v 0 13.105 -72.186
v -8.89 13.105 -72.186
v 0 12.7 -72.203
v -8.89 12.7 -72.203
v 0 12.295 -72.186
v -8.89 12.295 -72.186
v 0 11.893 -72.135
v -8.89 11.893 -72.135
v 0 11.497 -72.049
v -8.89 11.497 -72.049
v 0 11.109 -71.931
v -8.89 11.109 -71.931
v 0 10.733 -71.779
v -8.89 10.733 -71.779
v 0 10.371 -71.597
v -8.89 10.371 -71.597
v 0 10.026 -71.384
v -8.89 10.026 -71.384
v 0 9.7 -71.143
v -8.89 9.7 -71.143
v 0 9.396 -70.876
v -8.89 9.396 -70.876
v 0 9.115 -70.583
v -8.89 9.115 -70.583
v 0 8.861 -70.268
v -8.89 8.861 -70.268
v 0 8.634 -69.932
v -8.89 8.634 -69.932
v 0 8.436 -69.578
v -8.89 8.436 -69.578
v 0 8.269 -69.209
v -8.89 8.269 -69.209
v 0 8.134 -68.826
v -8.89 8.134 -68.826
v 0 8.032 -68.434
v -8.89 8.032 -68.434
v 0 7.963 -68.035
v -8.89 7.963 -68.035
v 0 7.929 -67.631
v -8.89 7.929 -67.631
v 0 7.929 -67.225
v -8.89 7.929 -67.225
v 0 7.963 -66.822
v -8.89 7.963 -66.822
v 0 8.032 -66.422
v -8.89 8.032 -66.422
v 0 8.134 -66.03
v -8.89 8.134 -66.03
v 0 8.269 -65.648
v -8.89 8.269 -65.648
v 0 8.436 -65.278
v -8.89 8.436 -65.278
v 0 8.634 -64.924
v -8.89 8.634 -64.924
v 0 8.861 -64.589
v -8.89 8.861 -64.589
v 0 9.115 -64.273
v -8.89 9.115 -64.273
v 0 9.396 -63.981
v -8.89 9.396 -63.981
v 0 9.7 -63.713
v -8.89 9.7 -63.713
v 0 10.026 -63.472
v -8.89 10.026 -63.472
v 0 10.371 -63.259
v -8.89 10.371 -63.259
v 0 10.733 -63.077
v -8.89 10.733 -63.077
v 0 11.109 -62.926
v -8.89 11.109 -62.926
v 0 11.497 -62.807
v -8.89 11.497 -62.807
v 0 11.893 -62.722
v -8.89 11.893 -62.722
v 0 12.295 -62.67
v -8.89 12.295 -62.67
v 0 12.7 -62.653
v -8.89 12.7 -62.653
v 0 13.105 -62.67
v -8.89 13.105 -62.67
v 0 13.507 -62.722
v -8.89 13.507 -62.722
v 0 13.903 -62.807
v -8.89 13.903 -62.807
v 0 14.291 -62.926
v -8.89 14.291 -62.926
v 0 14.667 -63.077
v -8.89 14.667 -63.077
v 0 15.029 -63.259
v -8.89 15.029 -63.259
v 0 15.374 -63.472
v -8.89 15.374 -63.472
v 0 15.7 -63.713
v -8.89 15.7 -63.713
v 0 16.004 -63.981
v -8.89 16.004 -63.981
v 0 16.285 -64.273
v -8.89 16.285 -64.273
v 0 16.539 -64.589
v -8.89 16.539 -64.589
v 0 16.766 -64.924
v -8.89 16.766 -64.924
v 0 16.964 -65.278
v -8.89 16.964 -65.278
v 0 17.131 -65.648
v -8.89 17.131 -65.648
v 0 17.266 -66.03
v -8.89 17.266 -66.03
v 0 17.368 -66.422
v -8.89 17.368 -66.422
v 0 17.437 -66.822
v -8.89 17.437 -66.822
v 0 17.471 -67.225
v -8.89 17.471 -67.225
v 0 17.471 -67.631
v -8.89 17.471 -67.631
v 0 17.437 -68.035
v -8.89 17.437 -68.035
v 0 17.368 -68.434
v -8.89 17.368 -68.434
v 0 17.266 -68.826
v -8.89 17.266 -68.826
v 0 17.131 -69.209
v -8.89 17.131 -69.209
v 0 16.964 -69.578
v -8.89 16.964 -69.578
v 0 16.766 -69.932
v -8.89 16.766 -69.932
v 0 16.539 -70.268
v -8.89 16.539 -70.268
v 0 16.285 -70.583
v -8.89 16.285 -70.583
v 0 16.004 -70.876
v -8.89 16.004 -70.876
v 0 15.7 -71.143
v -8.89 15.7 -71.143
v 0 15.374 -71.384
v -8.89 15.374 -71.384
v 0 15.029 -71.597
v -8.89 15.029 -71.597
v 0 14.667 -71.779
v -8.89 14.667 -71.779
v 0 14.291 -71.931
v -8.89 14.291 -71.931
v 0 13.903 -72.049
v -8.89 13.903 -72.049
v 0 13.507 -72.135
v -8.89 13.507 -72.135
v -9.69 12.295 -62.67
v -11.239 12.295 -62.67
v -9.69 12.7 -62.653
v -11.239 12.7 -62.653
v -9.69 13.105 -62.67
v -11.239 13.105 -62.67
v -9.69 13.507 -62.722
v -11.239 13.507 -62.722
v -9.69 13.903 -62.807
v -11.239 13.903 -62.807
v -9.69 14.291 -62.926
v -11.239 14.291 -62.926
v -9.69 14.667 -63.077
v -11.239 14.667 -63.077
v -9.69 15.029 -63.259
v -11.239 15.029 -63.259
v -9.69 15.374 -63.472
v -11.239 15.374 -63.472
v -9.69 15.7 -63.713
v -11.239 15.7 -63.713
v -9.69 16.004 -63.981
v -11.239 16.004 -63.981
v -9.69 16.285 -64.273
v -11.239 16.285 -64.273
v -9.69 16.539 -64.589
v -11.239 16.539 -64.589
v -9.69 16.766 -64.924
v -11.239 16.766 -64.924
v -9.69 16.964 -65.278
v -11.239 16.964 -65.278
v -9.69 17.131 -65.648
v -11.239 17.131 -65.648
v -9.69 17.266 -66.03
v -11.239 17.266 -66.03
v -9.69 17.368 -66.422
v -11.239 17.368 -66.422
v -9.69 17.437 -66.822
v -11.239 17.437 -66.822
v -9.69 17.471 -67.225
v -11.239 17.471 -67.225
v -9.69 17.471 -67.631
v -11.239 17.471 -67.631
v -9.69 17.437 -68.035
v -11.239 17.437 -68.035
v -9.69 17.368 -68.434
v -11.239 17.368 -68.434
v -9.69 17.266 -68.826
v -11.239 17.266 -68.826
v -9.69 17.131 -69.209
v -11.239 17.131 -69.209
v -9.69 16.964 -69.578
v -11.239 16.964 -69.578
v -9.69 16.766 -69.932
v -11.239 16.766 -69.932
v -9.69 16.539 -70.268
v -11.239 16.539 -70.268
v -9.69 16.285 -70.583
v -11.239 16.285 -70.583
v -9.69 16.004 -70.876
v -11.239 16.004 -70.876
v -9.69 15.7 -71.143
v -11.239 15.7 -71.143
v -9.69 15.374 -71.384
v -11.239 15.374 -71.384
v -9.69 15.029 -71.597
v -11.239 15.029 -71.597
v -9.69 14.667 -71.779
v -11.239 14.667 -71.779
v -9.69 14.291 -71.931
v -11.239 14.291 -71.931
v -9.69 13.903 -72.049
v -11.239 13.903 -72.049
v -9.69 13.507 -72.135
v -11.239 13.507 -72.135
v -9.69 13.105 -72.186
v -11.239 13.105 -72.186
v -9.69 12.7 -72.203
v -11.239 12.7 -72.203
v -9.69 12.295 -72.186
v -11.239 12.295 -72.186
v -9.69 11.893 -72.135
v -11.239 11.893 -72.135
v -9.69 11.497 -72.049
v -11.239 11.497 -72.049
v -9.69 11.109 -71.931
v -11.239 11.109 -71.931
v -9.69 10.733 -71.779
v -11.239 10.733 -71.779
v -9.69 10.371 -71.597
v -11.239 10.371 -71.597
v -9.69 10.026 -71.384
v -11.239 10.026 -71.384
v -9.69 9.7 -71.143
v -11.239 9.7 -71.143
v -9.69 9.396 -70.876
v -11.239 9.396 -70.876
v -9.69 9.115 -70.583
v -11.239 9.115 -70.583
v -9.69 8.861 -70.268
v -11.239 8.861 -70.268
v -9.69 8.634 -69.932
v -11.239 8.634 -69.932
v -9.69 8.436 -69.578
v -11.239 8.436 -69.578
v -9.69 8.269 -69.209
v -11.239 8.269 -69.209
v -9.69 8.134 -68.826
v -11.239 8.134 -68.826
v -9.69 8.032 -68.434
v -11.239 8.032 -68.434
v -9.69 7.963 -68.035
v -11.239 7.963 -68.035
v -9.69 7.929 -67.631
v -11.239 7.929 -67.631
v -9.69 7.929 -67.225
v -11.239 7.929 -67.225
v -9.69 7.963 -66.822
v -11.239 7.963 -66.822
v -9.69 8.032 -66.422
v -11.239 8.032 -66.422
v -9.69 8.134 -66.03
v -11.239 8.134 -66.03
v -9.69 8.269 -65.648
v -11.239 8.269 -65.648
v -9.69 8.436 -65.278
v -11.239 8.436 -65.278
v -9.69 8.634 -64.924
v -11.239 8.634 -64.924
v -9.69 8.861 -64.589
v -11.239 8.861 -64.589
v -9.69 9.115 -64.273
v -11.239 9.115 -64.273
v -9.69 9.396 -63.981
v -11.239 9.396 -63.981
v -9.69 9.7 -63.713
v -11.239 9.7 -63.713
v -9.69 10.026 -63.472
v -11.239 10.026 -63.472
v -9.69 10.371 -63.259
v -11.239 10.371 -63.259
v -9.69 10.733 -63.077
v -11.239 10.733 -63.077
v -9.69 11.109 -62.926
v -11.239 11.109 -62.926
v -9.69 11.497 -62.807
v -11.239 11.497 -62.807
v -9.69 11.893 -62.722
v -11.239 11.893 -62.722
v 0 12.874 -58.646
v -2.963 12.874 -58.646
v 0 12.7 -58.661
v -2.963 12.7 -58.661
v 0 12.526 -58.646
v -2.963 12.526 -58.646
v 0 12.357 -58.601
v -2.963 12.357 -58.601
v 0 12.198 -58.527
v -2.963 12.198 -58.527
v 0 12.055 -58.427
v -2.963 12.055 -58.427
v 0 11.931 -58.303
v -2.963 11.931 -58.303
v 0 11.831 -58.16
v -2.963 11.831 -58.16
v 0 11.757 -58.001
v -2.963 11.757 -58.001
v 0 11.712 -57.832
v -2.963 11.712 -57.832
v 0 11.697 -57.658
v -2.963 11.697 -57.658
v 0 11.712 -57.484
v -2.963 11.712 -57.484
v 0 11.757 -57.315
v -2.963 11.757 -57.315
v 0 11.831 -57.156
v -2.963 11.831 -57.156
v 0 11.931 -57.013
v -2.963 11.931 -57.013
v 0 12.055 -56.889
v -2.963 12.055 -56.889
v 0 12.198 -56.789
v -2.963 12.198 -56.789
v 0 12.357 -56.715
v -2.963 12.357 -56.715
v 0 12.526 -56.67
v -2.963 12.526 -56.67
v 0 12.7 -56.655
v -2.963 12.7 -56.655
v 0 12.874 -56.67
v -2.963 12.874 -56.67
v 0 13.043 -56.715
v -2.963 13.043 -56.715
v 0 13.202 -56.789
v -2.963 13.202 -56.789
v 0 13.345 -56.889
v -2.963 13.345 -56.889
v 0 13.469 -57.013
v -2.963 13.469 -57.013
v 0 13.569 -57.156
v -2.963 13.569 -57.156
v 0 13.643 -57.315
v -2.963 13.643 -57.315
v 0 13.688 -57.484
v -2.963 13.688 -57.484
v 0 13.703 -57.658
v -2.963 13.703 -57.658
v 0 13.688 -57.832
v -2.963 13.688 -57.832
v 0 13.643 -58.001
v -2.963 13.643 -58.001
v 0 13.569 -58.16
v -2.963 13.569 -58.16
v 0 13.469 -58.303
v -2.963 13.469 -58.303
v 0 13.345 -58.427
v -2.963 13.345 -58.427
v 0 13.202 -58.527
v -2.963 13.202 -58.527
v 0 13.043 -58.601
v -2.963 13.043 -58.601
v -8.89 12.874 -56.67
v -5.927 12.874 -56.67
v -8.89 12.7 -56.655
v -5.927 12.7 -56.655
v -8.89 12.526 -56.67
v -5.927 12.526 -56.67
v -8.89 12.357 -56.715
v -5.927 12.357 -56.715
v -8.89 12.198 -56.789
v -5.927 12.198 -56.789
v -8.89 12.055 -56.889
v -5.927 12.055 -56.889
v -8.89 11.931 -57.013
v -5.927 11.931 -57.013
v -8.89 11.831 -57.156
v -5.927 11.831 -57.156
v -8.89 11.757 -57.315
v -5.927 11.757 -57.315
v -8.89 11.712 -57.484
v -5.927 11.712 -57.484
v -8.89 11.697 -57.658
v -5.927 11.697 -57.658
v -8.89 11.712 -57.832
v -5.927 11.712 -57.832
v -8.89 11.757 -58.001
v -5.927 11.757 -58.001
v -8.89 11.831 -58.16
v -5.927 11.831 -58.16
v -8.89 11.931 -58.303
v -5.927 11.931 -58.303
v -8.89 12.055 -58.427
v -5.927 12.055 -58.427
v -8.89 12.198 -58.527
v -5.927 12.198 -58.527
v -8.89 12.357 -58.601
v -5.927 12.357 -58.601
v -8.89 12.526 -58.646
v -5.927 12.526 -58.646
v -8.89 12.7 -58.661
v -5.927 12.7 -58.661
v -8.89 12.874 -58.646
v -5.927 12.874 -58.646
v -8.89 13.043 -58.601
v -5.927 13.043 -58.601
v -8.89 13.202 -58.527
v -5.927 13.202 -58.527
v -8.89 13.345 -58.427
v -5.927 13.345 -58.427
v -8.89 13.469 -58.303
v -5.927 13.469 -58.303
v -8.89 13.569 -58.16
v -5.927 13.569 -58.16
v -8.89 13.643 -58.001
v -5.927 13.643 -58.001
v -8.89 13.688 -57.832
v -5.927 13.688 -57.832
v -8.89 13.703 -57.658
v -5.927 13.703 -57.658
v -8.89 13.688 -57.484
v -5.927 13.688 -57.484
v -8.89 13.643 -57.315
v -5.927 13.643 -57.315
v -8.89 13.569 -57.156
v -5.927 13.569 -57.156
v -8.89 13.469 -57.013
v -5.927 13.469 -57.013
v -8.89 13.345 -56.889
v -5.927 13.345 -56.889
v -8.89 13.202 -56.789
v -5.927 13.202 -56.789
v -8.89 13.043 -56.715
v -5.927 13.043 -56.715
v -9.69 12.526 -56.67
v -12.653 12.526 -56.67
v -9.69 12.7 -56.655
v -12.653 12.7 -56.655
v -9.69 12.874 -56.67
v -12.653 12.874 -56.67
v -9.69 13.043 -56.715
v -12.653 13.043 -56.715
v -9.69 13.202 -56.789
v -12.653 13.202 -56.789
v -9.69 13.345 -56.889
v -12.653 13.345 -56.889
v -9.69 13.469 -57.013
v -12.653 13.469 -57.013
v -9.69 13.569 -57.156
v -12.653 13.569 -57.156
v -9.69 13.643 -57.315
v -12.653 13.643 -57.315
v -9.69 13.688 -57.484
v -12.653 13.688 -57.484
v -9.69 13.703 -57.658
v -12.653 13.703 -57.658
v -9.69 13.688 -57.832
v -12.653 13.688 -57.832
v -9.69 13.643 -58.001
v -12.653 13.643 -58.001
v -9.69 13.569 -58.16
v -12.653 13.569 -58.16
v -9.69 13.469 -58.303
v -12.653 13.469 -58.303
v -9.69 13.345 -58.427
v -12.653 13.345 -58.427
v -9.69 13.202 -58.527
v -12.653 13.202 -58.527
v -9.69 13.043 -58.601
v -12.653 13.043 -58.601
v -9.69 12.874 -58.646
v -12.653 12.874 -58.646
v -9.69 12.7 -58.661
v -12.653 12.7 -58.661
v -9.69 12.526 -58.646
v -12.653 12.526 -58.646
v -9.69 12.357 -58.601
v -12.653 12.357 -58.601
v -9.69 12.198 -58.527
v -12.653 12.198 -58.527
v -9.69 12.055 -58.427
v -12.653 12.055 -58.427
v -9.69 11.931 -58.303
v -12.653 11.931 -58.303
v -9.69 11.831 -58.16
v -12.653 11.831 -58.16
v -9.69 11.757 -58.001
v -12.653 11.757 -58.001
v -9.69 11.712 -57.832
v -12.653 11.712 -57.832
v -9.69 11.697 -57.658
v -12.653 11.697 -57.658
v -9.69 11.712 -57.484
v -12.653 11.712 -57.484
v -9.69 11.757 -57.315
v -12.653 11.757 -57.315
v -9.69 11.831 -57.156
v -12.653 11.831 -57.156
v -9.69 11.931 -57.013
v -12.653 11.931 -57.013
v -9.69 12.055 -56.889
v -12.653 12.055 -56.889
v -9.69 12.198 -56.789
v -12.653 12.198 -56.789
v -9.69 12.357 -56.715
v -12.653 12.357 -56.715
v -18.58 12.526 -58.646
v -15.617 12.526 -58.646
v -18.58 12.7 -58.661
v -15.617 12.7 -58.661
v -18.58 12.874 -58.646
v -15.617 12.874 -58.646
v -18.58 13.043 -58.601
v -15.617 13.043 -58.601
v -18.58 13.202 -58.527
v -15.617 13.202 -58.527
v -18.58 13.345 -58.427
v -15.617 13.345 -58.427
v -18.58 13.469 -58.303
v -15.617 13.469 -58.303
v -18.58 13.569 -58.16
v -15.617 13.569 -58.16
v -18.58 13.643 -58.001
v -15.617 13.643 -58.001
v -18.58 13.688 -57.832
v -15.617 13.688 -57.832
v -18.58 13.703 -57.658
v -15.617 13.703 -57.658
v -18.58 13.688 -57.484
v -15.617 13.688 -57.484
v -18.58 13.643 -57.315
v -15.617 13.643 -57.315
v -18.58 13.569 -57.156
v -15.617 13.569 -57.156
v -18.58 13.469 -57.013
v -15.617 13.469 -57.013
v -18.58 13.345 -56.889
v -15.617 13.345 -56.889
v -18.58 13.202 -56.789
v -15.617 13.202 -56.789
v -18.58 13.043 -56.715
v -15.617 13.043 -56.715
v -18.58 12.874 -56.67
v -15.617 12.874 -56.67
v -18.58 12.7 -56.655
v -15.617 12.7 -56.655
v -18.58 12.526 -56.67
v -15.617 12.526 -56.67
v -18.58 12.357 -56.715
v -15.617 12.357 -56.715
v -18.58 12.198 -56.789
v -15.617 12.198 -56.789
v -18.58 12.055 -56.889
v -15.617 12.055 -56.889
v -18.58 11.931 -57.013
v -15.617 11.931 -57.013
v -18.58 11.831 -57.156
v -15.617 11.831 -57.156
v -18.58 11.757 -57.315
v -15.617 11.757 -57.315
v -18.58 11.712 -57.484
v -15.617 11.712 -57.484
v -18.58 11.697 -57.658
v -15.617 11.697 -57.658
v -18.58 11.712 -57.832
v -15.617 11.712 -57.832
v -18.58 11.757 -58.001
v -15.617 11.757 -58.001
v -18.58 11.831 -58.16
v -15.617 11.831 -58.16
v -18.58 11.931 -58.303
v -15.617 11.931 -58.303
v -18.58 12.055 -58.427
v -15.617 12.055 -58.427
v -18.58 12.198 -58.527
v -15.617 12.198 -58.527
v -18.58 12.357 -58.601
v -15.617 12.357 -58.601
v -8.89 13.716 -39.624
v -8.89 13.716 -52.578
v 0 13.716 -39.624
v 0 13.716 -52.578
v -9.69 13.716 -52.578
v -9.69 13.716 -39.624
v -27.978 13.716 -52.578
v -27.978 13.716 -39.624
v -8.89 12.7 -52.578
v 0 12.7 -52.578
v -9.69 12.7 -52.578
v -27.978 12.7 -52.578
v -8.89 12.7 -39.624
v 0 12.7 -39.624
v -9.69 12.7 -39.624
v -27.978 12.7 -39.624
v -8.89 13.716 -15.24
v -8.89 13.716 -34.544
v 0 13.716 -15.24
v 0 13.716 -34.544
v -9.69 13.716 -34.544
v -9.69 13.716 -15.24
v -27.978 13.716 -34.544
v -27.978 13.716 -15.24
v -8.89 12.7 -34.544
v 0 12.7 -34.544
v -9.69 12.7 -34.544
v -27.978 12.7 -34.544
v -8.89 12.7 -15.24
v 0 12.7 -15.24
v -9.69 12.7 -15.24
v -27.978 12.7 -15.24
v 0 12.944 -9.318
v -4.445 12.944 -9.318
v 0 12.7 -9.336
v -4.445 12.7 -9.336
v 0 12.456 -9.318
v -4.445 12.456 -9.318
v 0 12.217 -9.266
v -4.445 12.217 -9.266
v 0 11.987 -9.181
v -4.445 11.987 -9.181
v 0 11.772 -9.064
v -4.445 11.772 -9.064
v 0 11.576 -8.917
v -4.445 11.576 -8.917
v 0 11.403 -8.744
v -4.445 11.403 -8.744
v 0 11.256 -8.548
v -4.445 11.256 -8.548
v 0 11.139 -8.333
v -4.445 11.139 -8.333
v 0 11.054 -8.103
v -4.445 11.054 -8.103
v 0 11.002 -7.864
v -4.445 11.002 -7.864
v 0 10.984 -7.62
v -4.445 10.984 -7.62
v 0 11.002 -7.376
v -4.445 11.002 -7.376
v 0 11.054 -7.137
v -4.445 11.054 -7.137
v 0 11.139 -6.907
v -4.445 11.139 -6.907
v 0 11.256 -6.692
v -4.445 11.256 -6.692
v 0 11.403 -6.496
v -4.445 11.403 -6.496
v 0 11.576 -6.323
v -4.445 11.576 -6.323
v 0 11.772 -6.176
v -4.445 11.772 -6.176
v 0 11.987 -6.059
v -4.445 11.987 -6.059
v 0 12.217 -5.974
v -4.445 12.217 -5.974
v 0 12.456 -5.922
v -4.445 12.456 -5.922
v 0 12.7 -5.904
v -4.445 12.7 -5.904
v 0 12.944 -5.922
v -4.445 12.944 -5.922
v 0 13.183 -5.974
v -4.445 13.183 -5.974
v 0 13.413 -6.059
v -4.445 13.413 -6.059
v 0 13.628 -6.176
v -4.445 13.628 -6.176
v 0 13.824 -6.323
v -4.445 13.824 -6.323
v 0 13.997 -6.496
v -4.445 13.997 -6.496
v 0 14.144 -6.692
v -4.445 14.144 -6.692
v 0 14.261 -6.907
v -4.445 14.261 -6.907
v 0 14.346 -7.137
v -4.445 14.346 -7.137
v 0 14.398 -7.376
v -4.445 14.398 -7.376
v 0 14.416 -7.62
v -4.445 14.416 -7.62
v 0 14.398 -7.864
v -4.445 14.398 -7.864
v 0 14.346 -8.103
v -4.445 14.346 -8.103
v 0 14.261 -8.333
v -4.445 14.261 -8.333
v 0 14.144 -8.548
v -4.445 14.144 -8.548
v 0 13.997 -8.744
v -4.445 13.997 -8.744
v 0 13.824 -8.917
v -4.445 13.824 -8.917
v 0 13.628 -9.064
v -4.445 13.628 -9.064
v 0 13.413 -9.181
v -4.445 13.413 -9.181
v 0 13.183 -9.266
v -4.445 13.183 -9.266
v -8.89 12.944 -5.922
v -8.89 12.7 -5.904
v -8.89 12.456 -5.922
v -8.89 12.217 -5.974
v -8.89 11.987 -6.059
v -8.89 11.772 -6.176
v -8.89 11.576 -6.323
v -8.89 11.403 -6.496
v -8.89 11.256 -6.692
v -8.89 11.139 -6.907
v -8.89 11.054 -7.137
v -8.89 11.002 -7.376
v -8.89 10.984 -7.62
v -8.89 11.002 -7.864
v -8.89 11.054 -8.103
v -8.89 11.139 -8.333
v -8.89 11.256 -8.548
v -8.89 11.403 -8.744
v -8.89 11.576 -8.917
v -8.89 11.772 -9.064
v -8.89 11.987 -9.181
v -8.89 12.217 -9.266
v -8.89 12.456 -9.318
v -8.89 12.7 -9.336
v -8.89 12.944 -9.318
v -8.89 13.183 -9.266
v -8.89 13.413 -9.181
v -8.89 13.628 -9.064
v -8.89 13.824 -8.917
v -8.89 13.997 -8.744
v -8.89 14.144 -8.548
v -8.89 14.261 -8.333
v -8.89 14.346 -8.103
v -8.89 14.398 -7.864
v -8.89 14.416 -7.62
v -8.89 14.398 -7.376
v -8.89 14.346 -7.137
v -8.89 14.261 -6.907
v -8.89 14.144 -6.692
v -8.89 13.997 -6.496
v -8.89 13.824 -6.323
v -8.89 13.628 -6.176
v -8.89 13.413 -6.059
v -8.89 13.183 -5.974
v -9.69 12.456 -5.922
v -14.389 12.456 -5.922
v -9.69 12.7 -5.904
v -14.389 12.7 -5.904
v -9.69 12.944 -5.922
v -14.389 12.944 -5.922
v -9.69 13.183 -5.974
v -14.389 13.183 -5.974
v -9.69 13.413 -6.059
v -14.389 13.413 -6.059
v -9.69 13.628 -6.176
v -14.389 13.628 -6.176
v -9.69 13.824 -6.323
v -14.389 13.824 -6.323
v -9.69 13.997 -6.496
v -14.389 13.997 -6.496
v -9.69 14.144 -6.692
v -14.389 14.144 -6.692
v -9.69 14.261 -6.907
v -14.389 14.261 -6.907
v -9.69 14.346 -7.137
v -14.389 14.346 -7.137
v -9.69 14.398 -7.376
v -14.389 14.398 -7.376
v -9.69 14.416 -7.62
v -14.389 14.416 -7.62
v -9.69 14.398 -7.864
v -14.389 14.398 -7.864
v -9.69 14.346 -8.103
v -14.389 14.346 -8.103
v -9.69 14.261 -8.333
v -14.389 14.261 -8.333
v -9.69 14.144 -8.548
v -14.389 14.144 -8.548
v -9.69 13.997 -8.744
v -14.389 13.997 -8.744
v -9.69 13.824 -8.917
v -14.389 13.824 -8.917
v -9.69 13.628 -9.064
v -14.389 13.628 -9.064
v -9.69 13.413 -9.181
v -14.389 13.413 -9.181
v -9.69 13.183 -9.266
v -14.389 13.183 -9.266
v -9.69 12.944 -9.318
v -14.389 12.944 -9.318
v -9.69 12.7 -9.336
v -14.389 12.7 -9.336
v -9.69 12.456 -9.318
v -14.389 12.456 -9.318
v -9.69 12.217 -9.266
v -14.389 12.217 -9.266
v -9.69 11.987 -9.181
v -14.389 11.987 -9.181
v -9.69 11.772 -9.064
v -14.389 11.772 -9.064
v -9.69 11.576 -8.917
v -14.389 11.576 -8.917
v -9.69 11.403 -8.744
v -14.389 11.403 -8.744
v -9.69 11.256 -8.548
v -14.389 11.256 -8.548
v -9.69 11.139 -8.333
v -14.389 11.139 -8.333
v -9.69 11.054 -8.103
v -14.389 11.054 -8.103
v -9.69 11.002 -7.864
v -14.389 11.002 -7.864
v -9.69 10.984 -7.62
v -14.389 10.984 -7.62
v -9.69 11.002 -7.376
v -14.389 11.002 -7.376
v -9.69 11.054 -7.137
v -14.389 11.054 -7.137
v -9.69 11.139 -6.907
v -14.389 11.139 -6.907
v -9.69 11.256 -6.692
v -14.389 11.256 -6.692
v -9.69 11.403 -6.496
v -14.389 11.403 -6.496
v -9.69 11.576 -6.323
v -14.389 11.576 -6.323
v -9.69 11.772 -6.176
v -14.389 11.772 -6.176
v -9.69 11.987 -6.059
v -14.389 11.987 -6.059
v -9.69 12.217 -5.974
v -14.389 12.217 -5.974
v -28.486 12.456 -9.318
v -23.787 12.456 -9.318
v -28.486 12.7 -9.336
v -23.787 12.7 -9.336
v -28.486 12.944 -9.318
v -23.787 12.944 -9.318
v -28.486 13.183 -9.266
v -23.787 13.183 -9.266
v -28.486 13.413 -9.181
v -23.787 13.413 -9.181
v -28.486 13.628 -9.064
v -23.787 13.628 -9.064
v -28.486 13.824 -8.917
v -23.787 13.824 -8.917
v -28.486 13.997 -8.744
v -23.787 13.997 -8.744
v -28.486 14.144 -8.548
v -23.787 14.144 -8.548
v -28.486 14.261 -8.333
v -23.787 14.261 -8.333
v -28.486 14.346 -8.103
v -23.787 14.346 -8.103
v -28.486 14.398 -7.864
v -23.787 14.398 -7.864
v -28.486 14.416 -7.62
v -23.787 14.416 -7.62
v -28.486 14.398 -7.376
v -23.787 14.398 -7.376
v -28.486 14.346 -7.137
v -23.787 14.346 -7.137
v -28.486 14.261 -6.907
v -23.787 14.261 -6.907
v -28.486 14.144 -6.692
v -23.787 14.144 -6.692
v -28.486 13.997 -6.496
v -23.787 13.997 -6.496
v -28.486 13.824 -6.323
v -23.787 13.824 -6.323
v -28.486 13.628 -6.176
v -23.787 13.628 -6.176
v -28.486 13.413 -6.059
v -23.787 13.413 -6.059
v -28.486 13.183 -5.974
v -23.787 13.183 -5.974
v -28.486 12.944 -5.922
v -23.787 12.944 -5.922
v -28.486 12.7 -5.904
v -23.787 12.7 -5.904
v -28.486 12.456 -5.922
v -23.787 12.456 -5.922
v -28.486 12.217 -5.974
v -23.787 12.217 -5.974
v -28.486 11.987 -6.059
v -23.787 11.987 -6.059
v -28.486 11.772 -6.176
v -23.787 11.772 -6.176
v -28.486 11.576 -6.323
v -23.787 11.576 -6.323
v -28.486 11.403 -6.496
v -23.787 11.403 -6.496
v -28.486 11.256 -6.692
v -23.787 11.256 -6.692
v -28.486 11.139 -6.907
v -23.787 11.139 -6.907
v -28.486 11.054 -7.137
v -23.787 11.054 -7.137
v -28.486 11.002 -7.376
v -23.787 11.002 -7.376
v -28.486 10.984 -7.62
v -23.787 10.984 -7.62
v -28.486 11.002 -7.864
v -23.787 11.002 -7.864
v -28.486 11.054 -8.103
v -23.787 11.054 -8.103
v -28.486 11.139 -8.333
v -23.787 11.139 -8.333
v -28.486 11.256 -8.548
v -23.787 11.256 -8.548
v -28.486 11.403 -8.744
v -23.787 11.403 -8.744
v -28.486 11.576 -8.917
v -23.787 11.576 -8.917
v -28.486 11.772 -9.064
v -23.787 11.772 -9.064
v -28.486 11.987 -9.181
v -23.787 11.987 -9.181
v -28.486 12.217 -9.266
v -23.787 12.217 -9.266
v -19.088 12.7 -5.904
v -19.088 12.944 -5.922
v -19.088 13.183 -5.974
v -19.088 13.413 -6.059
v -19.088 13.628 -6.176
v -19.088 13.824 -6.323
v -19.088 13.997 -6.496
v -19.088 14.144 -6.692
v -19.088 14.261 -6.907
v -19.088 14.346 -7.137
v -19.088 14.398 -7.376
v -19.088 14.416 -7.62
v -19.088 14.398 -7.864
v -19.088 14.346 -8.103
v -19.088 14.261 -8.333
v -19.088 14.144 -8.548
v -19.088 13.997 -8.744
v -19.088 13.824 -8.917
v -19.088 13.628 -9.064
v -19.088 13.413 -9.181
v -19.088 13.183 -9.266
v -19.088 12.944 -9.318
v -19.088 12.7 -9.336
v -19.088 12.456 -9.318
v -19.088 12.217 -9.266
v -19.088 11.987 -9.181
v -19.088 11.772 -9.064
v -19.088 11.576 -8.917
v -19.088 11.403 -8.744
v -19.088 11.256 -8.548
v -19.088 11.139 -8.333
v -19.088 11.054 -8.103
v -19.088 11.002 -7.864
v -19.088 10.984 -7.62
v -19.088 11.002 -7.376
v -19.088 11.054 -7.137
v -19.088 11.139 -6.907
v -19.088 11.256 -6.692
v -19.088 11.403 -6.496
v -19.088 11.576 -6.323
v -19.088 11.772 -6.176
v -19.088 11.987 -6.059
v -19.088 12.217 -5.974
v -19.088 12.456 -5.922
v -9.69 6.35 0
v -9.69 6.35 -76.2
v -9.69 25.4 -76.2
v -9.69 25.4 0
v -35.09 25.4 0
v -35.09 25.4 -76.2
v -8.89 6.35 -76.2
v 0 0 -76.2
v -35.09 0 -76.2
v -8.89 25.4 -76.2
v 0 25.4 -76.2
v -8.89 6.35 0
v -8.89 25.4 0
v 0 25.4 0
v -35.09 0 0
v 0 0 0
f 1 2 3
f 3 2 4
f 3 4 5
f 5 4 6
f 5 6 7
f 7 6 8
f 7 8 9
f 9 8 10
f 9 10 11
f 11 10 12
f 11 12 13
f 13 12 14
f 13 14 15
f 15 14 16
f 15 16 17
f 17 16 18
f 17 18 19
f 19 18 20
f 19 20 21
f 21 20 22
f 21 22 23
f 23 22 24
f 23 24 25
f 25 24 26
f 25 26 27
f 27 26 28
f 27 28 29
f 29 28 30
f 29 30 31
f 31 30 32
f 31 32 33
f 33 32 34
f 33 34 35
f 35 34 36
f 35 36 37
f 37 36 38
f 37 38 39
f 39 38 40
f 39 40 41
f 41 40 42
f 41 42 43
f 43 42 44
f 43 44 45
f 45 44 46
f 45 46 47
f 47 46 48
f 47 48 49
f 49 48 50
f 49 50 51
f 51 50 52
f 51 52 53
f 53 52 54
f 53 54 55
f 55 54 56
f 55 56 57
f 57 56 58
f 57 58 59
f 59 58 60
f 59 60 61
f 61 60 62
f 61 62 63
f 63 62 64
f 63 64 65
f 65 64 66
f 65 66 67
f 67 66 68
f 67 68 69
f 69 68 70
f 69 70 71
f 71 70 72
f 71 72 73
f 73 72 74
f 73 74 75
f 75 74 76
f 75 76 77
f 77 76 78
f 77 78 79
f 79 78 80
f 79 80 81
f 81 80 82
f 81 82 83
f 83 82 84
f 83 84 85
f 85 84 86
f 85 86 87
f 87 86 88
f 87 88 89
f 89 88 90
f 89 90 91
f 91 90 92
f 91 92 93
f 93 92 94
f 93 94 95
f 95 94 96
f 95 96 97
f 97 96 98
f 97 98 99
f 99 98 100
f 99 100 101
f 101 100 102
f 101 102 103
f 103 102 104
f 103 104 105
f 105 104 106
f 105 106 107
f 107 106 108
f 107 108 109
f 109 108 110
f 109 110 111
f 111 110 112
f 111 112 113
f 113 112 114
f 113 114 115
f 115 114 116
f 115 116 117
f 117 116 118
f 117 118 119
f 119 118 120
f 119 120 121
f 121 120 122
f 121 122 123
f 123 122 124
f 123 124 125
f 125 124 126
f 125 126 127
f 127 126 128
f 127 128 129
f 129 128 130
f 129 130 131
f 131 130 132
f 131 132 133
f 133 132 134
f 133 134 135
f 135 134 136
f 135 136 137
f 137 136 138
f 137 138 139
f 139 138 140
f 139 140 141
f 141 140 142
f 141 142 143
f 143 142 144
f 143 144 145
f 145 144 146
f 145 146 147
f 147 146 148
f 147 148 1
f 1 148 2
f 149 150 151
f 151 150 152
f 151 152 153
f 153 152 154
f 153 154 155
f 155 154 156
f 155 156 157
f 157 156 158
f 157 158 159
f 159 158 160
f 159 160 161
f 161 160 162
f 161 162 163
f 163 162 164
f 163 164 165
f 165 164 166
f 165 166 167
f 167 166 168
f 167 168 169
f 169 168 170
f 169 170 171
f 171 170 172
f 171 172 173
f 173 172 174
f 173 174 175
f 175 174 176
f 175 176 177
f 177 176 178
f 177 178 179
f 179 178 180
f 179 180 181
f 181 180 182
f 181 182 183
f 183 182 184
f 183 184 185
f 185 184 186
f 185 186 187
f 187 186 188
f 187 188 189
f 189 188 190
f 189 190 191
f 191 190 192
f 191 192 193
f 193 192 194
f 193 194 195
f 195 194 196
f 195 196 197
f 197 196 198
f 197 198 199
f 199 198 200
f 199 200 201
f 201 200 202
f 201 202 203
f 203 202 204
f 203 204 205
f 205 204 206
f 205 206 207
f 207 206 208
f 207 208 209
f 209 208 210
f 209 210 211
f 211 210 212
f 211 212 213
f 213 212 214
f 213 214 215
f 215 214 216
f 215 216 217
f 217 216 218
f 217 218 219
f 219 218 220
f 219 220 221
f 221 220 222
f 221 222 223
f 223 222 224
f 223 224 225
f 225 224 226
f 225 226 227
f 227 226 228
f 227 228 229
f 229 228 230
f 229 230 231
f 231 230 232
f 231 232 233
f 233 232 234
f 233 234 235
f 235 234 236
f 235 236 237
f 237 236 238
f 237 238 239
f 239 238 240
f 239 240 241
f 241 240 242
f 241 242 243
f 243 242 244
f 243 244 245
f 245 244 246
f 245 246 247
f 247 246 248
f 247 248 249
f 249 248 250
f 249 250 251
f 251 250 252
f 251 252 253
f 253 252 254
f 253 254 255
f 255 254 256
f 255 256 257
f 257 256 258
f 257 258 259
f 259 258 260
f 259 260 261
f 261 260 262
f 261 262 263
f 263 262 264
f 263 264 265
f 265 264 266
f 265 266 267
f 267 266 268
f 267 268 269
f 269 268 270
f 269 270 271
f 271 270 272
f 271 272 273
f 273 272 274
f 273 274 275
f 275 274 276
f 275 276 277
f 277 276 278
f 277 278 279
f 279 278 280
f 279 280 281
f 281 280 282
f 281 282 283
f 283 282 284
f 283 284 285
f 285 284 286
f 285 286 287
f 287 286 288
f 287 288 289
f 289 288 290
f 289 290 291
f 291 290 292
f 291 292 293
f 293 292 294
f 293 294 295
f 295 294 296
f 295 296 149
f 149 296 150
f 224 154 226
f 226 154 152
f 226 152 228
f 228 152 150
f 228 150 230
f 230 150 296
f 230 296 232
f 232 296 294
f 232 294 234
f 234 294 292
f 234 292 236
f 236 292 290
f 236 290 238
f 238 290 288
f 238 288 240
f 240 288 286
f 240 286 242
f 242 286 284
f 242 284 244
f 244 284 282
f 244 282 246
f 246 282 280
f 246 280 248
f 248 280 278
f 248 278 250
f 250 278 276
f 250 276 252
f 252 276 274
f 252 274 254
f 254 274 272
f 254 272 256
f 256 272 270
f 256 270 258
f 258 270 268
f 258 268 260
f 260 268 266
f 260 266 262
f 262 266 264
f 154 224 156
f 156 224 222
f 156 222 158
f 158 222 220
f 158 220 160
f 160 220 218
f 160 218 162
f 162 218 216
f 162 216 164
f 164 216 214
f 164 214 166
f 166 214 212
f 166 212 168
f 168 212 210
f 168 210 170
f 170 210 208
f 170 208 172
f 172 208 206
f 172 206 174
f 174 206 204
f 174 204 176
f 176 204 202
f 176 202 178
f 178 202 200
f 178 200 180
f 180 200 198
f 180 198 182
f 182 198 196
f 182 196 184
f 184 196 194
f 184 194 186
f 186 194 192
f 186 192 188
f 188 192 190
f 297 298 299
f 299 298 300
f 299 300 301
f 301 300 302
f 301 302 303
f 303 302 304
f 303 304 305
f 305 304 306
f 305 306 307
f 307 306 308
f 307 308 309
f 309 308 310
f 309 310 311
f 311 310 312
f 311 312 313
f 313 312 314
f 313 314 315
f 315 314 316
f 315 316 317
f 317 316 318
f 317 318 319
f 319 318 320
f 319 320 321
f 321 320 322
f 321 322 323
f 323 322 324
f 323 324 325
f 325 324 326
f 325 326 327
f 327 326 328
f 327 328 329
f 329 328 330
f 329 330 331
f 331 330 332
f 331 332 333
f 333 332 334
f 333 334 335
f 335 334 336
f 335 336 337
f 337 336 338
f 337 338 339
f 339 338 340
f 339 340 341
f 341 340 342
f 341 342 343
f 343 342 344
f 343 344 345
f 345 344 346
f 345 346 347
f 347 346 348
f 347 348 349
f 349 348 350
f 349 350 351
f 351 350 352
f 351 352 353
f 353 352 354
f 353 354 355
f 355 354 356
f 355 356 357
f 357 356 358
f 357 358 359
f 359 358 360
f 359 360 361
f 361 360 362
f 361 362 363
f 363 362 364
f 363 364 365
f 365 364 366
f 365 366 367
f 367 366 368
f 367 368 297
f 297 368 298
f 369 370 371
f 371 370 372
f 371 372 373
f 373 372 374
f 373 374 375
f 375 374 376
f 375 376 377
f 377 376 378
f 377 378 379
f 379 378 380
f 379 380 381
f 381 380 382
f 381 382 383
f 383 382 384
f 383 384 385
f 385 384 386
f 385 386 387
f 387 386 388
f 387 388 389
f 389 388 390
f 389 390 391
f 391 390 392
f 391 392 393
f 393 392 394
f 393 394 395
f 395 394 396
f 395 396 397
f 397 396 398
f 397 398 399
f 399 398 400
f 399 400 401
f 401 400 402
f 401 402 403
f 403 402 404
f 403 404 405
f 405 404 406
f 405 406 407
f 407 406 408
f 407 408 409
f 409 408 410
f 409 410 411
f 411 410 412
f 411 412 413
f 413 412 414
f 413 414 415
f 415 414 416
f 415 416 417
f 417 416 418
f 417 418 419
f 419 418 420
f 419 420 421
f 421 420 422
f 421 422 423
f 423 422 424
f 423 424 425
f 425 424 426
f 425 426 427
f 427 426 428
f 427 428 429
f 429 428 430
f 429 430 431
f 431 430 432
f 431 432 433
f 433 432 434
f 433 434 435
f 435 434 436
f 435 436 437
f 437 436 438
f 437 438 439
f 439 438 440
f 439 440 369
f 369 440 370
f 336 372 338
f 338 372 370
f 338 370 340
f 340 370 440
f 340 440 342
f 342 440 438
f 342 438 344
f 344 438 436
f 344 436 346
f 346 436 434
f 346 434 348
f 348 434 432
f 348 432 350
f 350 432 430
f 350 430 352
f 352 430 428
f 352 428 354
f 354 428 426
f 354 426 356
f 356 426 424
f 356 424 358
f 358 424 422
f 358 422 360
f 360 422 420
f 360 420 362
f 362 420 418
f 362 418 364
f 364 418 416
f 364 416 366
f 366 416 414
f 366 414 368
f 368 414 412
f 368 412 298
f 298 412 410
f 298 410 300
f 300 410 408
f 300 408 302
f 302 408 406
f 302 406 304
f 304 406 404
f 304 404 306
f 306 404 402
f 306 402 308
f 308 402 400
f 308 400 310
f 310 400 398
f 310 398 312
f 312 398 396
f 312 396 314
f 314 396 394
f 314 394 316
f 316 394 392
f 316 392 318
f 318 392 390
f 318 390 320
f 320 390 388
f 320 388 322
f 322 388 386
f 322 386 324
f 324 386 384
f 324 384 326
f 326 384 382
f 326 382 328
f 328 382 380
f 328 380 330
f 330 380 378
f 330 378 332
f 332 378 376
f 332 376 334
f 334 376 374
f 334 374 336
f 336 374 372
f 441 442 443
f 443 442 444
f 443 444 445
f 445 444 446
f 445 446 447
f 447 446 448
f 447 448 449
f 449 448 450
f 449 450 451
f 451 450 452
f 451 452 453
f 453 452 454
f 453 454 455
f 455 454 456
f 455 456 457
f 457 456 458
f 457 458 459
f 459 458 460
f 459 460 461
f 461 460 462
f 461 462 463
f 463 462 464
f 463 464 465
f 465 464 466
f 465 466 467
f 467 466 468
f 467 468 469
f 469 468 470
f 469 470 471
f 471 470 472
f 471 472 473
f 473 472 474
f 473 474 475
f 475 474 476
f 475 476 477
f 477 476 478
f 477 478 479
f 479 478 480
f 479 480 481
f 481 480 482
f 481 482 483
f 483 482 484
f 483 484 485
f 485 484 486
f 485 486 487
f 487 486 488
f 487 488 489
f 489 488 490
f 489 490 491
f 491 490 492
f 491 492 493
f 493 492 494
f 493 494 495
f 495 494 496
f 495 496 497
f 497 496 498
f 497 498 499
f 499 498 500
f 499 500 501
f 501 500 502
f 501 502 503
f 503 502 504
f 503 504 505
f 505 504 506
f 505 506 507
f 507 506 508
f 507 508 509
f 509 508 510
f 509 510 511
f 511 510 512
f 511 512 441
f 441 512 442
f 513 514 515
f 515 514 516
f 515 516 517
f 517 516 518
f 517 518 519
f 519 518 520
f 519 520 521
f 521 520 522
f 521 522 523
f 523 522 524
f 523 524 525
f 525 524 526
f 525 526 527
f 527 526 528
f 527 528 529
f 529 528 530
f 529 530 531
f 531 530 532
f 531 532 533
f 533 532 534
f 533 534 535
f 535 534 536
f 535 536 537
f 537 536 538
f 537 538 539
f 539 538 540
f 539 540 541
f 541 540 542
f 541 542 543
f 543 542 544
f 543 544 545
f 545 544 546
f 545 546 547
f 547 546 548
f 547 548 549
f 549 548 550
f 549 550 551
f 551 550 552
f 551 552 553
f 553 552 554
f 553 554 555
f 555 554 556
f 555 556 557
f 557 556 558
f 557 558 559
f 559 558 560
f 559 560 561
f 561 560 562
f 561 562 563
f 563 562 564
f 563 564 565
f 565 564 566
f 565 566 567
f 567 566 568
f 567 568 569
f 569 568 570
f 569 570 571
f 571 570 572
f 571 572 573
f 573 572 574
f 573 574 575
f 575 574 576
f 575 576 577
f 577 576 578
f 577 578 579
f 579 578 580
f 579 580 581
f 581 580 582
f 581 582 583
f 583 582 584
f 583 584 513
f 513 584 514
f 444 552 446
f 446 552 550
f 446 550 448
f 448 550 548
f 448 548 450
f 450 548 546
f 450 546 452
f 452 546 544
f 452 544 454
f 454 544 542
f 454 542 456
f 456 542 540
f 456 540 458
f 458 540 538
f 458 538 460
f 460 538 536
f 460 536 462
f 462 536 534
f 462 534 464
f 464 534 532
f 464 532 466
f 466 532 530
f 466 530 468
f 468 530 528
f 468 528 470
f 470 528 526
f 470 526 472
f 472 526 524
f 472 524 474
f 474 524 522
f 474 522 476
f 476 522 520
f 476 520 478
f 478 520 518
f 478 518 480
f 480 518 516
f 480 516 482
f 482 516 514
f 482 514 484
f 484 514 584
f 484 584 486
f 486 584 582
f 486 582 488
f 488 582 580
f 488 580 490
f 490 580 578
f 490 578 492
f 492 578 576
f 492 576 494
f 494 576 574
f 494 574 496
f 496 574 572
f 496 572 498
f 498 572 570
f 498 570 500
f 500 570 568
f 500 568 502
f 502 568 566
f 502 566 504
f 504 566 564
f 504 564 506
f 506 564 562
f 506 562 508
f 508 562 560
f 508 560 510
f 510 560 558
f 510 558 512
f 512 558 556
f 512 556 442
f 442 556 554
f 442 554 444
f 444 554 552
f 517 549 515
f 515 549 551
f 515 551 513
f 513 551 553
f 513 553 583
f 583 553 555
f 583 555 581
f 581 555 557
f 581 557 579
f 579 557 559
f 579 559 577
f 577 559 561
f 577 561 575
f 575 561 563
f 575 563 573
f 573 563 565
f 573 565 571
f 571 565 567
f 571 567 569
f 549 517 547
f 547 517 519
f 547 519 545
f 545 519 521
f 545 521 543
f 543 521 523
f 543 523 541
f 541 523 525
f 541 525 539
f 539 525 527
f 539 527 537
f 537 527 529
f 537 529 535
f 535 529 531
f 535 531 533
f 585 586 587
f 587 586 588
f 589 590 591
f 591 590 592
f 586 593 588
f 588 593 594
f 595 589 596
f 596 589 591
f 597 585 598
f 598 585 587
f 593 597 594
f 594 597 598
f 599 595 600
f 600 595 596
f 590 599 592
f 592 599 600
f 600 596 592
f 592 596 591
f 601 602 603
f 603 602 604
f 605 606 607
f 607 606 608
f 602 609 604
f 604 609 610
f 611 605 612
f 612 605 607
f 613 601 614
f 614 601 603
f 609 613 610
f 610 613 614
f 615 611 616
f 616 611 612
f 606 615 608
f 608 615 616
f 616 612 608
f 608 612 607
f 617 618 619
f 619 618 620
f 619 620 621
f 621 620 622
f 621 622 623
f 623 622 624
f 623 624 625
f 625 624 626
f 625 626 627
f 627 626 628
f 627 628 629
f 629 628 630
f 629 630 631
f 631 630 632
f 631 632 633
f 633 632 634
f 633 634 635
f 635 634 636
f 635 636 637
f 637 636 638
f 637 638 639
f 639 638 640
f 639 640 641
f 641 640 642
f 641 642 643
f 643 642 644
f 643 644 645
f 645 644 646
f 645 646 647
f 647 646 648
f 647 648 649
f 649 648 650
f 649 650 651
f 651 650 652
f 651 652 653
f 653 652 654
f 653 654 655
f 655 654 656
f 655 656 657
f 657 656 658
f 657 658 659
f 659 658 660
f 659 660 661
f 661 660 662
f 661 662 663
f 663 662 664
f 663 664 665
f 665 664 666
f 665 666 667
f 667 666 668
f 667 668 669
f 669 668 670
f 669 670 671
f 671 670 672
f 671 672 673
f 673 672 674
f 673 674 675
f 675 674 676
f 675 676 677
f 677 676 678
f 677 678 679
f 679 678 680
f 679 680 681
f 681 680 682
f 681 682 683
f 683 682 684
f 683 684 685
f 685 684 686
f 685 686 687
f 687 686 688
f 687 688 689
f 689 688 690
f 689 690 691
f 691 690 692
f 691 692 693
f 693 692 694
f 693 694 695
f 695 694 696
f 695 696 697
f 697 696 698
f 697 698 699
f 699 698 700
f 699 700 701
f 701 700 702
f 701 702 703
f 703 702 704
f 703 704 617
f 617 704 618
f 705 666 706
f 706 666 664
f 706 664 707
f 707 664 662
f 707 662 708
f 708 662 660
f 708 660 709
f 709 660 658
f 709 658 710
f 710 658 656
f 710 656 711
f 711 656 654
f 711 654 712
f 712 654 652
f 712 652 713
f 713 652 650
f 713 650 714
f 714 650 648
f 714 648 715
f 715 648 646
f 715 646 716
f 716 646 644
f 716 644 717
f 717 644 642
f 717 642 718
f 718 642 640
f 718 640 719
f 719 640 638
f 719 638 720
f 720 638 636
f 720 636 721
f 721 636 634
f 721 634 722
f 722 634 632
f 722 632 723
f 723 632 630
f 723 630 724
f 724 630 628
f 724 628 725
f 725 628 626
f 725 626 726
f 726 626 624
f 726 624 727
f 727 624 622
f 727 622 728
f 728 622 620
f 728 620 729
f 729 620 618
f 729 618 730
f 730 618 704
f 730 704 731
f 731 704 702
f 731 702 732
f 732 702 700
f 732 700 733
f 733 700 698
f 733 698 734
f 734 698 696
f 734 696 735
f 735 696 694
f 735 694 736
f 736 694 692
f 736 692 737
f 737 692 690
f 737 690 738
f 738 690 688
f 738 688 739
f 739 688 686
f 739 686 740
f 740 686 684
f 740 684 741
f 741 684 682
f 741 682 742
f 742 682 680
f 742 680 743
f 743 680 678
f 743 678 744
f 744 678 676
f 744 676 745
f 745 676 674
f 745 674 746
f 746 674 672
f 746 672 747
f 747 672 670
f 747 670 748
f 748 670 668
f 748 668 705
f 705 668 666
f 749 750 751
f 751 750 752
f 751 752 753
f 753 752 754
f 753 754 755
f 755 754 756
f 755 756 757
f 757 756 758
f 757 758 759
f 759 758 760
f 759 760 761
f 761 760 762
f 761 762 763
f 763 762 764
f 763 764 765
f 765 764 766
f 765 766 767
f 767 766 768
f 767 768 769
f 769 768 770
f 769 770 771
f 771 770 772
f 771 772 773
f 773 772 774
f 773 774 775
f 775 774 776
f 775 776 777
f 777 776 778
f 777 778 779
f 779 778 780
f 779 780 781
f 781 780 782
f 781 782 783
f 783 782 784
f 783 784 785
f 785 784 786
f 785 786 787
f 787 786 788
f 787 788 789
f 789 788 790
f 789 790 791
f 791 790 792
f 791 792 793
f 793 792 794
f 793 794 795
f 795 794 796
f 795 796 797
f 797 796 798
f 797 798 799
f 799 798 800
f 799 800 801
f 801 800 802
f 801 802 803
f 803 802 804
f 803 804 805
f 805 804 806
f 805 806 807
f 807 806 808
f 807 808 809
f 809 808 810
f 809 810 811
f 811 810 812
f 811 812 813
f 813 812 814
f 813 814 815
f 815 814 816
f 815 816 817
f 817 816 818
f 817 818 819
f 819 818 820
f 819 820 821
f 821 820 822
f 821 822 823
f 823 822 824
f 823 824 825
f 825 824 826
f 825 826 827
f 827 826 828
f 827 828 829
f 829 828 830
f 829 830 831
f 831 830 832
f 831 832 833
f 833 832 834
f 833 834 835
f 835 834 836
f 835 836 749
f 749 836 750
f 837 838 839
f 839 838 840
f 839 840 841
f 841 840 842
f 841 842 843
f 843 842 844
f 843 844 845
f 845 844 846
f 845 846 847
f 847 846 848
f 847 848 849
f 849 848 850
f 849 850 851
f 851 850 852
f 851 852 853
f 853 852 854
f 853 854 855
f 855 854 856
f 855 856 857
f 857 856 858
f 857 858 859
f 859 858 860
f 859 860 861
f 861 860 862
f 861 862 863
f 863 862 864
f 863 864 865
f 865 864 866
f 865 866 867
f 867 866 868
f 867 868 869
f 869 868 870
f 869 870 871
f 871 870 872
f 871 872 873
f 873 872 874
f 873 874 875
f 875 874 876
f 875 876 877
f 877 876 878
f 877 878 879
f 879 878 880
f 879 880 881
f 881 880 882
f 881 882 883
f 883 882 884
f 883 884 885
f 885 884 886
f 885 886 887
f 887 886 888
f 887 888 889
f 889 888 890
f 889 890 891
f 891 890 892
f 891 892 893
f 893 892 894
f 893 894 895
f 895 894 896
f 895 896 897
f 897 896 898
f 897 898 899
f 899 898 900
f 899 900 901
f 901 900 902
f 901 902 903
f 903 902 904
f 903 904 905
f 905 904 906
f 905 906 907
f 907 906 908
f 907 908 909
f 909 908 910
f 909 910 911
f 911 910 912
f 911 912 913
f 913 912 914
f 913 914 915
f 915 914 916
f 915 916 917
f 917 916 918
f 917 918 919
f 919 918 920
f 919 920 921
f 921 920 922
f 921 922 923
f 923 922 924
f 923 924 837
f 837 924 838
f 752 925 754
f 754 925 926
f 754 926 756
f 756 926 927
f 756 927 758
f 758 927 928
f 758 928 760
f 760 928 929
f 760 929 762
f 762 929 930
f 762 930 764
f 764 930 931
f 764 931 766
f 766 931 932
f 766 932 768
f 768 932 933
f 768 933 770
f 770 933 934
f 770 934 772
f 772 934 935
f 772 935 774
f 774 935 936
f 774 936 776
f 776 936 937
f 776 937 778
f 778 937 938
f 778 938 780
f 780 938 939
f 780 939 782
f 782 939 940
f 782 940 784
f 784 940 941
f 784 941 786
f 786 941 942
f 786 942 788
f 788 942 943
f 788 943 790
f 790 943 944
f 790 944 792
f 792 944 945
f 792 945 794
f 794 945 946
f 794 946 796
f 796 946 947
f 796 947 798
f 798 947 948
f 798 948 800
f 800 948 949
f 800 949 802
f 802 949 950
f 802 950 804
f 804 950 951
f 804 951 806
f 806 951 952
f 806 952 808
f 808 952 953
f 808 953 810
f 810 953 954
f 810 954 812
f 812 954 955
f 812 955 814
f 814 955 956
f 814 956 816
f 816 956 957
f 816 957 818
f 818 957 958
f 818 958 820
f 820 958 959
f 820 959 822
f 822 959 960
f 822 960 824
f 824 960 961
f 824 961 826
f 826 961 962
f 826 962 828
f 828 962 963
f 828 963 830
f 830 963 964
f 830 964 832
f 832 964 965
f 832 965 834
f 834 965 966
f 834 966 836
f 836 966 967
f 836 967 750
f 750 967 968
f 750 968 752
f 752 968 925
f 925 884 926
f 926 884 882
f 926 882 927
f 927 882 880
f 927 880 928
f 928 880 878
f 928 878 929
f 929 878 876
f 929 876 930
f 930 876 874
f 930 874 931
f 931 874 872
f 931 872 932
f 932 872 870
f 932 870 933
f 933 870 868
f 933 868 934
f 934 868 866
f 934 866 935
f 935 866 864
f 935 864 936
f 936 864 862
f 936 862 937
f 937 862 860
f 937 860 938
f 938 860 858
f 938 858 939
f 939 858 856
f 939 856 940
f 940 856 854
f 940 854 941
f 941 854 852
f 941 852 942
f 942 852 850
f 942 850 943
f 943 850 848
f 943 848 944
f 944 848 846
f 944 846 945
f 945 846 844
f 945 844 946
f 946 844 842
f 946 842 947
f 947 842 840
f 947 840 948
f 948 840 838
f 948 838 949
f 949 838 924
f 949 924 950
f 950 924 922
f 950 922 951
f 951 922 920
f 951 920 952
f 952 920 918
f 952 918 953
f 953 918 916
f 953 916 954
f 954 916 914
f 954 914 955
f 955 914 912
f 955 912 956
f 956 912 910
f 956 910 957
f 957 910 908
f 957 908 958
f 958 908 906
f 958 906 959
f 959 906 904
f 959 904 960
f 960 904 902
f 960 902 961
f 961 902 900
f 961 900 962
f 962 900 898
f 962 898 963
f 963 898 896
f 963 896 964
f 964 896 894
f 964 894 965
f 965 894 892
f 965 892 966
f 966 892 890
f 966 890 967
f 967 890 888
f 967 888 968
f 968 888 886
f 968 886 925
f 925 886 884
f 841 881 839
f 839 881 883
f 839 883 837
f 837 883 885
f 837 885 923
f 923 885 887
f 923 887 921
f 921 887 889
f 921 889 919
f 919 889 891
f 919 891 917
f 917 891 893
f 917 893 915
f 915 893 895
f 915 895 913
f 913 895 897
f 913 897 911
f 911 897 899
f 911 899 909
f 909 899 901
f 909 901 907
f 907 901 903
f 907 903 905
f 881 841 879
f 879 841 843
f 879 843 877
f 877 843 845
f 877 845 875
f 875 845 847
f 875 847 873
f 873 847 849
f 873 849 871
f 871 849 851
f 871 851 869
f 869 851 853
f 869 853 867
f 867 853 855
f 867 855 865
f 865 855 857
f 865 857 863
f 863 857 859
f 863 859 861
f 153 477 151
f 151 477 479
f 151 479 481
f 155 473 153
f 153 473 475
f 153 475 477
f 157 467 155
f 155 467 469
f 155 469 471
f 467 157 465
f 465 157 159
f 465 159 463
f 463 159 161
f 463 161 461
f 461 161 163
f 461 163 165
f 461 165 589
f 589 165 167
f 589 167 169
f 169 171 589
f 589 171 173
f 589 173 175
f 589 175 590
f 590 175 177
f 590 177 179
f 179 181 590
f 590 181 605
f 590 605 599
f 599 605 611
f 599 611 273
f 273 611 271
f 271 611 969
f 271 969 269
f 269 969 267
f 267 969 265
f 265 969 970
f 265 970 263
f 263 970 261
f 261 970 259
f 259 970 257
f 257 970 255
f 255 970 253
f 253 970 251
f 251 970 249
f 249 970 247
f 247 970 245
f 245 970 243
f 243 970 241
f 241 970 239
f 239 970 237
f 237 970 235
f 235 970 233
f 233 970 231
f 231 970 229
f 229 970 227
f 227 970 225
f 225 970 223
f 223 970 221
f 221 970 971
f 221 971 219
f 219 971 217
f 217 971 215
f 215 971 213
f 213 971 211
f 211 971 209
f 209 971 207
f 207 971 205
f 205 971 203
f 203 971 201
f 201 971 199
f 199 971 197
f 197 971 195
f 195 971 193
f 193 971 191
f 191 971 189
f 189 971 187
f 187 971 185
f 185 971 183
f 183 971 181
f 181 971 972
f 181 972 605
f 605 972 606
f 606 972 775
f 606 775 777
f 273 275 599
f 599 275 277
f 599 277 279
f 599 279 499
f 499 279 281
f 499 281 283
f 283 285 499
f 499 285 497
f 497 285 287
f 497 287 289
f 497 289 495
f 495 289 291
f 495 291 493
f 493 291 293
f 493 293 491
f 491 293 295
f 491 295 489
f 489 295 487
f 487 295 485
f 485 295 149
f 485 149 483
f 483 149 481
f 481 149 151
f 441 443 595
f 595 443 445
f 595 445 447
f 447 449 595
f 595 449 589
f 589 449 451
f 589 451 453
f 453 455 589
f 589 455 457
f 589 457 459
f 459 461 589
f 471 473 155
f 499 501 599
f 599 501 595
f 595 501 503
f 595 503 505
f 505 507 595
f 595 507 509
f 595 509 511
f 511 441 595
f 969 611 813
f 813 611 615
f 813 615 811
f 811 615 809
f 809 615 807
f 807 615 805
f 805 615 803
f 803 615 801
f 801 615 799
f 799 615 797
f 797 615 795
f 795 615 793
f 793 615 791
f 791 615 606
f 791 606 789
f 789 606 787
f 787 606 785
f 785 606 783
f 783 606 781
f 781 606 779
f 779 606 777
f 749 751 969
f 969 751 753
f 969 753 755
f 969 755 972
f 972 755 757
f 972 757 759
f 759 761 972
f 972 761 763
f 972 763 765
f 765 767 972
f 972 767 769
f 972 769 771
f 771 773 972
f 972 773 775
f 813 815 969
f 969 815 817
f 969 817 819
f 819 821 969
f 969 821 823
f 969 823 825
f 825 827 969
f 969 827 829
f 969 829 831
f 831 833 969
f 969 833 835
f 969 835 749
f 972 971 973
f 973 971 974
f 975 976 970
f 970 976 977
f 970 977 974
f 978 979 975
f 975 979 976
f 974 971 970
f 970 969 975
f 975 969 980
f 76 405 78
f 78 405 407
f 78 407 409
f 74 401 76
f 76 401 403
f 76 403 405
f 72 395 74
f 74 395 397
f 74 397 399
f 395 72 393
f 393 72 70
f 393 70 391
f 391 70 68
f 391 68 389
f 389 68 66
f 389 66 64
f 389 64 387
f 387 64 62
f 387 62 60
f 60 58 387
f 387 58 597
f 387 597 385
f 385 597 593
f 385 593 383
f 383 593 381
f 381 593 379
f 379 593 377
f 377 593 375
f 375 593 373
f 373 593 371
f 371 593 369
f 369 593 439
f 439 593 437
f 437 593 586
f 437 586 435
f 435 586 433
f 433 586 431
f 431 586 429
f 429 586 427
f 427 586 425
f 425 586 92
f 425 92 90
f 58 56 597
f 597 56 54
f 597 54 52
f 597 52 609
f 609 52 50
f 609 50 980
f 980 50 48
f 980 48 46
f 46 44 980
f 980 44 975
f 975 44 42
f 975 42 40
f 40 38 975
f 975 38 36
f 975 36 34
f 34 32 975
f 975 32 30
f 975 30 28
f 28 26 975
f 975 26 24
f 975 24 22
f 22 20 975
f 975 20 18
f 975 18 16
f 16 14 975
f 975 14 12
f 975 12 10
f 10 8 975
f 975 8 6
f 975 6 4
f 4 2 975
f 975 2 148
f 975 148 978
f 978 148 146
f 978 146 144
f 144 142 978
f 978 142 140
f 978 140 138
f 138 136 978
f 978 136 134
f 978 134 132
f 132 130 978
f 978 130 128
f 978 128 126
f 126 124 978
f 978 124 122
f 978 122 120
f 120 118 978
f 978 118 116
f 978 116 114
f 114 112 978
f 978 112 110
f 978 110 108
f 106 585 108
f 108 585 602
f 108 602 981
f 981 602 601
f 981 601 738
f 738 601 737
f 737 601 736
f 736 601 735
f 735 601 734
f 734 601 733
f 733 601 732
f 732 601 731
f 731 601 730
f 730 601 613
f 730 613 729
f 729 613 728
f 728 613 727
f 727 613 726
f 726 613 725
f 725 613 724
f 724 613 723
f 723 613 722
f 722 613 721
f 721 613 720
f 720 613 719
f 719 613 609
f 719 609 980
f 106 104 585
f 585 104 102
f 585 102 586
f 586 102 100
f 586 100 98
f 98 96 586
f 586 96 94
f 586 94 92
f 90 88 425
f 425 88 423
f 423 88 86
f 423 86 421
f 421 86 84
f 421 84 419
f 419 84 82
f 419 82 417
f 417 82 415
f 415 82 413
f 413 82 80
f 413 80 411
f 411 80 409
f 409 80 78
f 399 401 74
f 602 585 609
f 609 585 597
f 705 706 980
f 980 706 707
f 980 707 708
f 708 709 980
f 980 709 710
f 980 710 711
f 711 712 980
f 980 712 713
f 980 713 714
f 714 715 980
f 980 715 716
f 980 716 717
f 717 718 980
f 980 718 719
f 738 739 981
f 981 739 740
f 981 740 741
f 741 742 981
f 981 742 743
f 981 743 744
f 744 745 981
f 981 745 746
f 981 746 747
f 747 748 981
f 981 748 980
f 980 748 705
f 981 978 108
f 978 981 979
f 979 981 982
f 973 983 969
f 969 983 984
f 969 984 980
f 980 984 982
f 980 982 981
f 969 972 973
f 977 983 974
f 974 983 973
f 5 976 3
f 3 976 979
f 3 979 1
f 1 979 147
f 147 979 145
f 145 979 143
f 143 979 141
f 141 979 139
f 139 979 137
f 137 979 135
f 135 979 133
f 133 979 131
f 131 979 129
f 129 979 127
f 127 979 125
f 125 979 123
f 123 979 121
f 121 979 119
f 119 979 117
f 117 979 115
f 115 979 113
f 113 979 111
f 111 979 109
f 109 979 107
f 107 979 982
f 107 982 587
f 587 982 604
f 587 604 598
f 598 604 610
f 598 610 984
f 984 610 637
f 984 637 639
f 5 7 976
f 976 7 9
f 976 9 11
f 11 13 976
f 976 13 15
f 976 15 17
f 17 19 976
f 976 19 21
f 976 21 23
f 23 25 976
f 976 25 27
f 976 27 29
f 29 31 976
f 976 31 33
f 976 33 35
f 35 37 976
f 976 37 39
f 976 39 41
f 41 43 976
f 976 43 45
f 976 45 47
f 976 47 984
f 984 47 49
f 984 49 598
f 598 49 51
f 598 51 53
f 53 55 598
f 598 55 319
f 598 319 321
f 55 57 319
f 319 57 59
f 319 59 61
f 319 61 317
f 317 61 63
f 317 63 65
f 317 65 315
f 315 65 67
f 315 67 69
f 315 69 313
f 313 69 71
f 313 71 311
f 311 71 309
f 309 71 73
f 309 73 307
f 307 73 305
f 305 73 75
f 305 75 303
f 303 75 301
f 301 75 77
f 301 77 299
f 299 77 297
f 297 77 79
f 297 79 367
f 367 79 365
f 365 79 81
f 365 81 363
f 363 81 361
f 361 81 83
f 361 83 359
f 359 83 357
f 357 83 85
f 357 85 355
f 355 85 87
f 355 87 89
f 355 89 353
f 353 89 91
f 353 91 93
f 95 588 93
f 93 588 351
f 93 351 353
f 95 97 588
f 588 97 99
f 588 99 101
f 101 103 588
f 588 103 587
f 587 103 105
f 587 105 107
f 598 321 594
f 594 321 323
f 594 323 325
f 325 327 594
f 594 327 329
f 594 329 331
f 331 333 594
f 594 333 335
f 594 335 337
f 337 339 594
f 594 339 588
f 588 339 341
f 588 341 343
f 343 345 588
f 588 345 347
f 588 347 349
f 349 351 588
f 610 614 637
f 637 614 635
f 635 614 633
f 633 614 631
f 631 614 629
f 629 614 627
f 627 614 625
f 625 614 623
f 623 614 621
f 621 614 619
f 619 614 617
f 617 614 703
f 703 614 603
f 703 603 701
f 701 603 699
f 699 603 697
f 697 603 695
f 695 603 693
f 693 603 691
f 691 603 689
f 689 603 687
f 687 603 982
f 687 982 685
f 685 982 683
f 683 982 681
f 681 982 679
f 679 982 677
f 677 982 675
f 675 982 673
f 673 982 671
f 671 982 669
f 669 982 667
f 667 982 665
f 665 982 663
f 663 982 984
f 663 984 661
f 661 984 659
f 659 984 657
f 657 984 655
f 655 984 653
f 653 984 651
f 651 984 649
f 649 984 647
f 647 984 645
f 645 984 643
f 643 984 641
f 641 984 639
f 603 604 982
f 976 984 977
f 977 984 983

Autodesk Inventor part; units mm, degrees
ref_plane "YZ Plane" through (0, 0, 0) normal (1, 0, 0) x (0, 1, 0)
ref_plane "XZ Plane" through (0, 0, 0) normal (0, 1, 0) x (-1, 0, 0)
ref_plane "XY Plane" through (0, 0, 0) normal (0, 0, 1) x (1, 0, 0)
sketch "Sketch1" plane through (0, 0, 0) normal (0, 1, 0) x (-1, 0, 0)
  line L0 (0, 0) -> (0, -76.2)
  line L1 (0, -76.2) -> (35.09, -76.2)
  line L2 (35.09, -76.2) -> (35.09, 0)
  line L3 (35.09, 0) -> (0, 0)
  line L4 (8.89, 0) -> (8.89, -76.2)
  line L5 (9.69, 0) -> (9.69, -76.2)
  dimension "d1" = 76.2
  dimension "d2" = 35.09
  dimension "d3" = 8.89
  dimension "d4" = 0.8
extrude "Extrusion1" add sketch "Sketch1" along normal blind 6.35
extrude "Extrusion2" add sketch "Sketch1" along normal blind 25.4 contours L3 L4 L1 L0
extrude "Extrusion3" add sketch "Sketch1" along normal blind 25.4 contours L3 L2 L1 L5
sketch "Sketch2" plane through (0, 0, 0) normal (1, 0, 0) x (0, 0, -1)
  line L0 (0, 0) -> (0, 25.4) projected
  line L1 (0, 12.7) -> (76.2, 12.7)
  line L2 (76.2, 6.35) -> (76.2, 25.4) projected
  circle A0 centre (7.62, 12.7) radius 1.716
  line L3 (15.24, 12.7) -> (34.544, 12.7)
  line L4 (34.544, 12.7) -> (34.544, 13.716)
  line L5 (34.544, 13.716) -> (15.24, 13.716)
  line L6 (15.24, 13.716) -> (15.24, 12.7)
  line L7 (39.624, 12.7) -> (52.578, 12.7)
  line L8 (52.578, 12.7) -> (52.578, 13.716)
  line L9 (52.578, 13.716) -> (39.624, 13.716)
  line L10 (39.624, 13.716) -> (39.624, 12.7)
  circle A1 centre (57.658, 12.7) radius 1.0033
  circle A2 centre (67.4281, 12.7) radius 4.7752
  point P0 (15.24, 13.208)
  point P1 (39.624, 13.208)
  point P2 (34.544, 13.208)
  point P3 (52.578, 13.208)
  dimension "d13" = 19.304
  dimension "d14" = 1.016
  dimension "d15" = 12.954
  dimension "d16" = 1.016
  dimension "d19" = 2.0066
  dimension "d22" = 7.62
  dimension "d23" = 7.62
  dimension "d24" = 5.08
  dimension "d25" = 5.08
  dimension "d26" = 9.5504
extrude "Extrusion4" cut sketch "Sketch2" against normal blind 28.486 contours A0 L1 | L1 A0
extrude "Extrusion5" cut sketch "Sketch2" against normal blind 27.978 contours L10 L9 L8 L1 | L6 L5 L4 L1
extrude "Extrusion6" cut sketch "Sketch2" against normal blind 18.58 contours A1 L1 | L1 A1
extrude "Extrusion7" cut sketch "Sketch2" against normal blind 11.2394 contours A2 L1 | L1 A2
properties part number "Cutting Jig"
